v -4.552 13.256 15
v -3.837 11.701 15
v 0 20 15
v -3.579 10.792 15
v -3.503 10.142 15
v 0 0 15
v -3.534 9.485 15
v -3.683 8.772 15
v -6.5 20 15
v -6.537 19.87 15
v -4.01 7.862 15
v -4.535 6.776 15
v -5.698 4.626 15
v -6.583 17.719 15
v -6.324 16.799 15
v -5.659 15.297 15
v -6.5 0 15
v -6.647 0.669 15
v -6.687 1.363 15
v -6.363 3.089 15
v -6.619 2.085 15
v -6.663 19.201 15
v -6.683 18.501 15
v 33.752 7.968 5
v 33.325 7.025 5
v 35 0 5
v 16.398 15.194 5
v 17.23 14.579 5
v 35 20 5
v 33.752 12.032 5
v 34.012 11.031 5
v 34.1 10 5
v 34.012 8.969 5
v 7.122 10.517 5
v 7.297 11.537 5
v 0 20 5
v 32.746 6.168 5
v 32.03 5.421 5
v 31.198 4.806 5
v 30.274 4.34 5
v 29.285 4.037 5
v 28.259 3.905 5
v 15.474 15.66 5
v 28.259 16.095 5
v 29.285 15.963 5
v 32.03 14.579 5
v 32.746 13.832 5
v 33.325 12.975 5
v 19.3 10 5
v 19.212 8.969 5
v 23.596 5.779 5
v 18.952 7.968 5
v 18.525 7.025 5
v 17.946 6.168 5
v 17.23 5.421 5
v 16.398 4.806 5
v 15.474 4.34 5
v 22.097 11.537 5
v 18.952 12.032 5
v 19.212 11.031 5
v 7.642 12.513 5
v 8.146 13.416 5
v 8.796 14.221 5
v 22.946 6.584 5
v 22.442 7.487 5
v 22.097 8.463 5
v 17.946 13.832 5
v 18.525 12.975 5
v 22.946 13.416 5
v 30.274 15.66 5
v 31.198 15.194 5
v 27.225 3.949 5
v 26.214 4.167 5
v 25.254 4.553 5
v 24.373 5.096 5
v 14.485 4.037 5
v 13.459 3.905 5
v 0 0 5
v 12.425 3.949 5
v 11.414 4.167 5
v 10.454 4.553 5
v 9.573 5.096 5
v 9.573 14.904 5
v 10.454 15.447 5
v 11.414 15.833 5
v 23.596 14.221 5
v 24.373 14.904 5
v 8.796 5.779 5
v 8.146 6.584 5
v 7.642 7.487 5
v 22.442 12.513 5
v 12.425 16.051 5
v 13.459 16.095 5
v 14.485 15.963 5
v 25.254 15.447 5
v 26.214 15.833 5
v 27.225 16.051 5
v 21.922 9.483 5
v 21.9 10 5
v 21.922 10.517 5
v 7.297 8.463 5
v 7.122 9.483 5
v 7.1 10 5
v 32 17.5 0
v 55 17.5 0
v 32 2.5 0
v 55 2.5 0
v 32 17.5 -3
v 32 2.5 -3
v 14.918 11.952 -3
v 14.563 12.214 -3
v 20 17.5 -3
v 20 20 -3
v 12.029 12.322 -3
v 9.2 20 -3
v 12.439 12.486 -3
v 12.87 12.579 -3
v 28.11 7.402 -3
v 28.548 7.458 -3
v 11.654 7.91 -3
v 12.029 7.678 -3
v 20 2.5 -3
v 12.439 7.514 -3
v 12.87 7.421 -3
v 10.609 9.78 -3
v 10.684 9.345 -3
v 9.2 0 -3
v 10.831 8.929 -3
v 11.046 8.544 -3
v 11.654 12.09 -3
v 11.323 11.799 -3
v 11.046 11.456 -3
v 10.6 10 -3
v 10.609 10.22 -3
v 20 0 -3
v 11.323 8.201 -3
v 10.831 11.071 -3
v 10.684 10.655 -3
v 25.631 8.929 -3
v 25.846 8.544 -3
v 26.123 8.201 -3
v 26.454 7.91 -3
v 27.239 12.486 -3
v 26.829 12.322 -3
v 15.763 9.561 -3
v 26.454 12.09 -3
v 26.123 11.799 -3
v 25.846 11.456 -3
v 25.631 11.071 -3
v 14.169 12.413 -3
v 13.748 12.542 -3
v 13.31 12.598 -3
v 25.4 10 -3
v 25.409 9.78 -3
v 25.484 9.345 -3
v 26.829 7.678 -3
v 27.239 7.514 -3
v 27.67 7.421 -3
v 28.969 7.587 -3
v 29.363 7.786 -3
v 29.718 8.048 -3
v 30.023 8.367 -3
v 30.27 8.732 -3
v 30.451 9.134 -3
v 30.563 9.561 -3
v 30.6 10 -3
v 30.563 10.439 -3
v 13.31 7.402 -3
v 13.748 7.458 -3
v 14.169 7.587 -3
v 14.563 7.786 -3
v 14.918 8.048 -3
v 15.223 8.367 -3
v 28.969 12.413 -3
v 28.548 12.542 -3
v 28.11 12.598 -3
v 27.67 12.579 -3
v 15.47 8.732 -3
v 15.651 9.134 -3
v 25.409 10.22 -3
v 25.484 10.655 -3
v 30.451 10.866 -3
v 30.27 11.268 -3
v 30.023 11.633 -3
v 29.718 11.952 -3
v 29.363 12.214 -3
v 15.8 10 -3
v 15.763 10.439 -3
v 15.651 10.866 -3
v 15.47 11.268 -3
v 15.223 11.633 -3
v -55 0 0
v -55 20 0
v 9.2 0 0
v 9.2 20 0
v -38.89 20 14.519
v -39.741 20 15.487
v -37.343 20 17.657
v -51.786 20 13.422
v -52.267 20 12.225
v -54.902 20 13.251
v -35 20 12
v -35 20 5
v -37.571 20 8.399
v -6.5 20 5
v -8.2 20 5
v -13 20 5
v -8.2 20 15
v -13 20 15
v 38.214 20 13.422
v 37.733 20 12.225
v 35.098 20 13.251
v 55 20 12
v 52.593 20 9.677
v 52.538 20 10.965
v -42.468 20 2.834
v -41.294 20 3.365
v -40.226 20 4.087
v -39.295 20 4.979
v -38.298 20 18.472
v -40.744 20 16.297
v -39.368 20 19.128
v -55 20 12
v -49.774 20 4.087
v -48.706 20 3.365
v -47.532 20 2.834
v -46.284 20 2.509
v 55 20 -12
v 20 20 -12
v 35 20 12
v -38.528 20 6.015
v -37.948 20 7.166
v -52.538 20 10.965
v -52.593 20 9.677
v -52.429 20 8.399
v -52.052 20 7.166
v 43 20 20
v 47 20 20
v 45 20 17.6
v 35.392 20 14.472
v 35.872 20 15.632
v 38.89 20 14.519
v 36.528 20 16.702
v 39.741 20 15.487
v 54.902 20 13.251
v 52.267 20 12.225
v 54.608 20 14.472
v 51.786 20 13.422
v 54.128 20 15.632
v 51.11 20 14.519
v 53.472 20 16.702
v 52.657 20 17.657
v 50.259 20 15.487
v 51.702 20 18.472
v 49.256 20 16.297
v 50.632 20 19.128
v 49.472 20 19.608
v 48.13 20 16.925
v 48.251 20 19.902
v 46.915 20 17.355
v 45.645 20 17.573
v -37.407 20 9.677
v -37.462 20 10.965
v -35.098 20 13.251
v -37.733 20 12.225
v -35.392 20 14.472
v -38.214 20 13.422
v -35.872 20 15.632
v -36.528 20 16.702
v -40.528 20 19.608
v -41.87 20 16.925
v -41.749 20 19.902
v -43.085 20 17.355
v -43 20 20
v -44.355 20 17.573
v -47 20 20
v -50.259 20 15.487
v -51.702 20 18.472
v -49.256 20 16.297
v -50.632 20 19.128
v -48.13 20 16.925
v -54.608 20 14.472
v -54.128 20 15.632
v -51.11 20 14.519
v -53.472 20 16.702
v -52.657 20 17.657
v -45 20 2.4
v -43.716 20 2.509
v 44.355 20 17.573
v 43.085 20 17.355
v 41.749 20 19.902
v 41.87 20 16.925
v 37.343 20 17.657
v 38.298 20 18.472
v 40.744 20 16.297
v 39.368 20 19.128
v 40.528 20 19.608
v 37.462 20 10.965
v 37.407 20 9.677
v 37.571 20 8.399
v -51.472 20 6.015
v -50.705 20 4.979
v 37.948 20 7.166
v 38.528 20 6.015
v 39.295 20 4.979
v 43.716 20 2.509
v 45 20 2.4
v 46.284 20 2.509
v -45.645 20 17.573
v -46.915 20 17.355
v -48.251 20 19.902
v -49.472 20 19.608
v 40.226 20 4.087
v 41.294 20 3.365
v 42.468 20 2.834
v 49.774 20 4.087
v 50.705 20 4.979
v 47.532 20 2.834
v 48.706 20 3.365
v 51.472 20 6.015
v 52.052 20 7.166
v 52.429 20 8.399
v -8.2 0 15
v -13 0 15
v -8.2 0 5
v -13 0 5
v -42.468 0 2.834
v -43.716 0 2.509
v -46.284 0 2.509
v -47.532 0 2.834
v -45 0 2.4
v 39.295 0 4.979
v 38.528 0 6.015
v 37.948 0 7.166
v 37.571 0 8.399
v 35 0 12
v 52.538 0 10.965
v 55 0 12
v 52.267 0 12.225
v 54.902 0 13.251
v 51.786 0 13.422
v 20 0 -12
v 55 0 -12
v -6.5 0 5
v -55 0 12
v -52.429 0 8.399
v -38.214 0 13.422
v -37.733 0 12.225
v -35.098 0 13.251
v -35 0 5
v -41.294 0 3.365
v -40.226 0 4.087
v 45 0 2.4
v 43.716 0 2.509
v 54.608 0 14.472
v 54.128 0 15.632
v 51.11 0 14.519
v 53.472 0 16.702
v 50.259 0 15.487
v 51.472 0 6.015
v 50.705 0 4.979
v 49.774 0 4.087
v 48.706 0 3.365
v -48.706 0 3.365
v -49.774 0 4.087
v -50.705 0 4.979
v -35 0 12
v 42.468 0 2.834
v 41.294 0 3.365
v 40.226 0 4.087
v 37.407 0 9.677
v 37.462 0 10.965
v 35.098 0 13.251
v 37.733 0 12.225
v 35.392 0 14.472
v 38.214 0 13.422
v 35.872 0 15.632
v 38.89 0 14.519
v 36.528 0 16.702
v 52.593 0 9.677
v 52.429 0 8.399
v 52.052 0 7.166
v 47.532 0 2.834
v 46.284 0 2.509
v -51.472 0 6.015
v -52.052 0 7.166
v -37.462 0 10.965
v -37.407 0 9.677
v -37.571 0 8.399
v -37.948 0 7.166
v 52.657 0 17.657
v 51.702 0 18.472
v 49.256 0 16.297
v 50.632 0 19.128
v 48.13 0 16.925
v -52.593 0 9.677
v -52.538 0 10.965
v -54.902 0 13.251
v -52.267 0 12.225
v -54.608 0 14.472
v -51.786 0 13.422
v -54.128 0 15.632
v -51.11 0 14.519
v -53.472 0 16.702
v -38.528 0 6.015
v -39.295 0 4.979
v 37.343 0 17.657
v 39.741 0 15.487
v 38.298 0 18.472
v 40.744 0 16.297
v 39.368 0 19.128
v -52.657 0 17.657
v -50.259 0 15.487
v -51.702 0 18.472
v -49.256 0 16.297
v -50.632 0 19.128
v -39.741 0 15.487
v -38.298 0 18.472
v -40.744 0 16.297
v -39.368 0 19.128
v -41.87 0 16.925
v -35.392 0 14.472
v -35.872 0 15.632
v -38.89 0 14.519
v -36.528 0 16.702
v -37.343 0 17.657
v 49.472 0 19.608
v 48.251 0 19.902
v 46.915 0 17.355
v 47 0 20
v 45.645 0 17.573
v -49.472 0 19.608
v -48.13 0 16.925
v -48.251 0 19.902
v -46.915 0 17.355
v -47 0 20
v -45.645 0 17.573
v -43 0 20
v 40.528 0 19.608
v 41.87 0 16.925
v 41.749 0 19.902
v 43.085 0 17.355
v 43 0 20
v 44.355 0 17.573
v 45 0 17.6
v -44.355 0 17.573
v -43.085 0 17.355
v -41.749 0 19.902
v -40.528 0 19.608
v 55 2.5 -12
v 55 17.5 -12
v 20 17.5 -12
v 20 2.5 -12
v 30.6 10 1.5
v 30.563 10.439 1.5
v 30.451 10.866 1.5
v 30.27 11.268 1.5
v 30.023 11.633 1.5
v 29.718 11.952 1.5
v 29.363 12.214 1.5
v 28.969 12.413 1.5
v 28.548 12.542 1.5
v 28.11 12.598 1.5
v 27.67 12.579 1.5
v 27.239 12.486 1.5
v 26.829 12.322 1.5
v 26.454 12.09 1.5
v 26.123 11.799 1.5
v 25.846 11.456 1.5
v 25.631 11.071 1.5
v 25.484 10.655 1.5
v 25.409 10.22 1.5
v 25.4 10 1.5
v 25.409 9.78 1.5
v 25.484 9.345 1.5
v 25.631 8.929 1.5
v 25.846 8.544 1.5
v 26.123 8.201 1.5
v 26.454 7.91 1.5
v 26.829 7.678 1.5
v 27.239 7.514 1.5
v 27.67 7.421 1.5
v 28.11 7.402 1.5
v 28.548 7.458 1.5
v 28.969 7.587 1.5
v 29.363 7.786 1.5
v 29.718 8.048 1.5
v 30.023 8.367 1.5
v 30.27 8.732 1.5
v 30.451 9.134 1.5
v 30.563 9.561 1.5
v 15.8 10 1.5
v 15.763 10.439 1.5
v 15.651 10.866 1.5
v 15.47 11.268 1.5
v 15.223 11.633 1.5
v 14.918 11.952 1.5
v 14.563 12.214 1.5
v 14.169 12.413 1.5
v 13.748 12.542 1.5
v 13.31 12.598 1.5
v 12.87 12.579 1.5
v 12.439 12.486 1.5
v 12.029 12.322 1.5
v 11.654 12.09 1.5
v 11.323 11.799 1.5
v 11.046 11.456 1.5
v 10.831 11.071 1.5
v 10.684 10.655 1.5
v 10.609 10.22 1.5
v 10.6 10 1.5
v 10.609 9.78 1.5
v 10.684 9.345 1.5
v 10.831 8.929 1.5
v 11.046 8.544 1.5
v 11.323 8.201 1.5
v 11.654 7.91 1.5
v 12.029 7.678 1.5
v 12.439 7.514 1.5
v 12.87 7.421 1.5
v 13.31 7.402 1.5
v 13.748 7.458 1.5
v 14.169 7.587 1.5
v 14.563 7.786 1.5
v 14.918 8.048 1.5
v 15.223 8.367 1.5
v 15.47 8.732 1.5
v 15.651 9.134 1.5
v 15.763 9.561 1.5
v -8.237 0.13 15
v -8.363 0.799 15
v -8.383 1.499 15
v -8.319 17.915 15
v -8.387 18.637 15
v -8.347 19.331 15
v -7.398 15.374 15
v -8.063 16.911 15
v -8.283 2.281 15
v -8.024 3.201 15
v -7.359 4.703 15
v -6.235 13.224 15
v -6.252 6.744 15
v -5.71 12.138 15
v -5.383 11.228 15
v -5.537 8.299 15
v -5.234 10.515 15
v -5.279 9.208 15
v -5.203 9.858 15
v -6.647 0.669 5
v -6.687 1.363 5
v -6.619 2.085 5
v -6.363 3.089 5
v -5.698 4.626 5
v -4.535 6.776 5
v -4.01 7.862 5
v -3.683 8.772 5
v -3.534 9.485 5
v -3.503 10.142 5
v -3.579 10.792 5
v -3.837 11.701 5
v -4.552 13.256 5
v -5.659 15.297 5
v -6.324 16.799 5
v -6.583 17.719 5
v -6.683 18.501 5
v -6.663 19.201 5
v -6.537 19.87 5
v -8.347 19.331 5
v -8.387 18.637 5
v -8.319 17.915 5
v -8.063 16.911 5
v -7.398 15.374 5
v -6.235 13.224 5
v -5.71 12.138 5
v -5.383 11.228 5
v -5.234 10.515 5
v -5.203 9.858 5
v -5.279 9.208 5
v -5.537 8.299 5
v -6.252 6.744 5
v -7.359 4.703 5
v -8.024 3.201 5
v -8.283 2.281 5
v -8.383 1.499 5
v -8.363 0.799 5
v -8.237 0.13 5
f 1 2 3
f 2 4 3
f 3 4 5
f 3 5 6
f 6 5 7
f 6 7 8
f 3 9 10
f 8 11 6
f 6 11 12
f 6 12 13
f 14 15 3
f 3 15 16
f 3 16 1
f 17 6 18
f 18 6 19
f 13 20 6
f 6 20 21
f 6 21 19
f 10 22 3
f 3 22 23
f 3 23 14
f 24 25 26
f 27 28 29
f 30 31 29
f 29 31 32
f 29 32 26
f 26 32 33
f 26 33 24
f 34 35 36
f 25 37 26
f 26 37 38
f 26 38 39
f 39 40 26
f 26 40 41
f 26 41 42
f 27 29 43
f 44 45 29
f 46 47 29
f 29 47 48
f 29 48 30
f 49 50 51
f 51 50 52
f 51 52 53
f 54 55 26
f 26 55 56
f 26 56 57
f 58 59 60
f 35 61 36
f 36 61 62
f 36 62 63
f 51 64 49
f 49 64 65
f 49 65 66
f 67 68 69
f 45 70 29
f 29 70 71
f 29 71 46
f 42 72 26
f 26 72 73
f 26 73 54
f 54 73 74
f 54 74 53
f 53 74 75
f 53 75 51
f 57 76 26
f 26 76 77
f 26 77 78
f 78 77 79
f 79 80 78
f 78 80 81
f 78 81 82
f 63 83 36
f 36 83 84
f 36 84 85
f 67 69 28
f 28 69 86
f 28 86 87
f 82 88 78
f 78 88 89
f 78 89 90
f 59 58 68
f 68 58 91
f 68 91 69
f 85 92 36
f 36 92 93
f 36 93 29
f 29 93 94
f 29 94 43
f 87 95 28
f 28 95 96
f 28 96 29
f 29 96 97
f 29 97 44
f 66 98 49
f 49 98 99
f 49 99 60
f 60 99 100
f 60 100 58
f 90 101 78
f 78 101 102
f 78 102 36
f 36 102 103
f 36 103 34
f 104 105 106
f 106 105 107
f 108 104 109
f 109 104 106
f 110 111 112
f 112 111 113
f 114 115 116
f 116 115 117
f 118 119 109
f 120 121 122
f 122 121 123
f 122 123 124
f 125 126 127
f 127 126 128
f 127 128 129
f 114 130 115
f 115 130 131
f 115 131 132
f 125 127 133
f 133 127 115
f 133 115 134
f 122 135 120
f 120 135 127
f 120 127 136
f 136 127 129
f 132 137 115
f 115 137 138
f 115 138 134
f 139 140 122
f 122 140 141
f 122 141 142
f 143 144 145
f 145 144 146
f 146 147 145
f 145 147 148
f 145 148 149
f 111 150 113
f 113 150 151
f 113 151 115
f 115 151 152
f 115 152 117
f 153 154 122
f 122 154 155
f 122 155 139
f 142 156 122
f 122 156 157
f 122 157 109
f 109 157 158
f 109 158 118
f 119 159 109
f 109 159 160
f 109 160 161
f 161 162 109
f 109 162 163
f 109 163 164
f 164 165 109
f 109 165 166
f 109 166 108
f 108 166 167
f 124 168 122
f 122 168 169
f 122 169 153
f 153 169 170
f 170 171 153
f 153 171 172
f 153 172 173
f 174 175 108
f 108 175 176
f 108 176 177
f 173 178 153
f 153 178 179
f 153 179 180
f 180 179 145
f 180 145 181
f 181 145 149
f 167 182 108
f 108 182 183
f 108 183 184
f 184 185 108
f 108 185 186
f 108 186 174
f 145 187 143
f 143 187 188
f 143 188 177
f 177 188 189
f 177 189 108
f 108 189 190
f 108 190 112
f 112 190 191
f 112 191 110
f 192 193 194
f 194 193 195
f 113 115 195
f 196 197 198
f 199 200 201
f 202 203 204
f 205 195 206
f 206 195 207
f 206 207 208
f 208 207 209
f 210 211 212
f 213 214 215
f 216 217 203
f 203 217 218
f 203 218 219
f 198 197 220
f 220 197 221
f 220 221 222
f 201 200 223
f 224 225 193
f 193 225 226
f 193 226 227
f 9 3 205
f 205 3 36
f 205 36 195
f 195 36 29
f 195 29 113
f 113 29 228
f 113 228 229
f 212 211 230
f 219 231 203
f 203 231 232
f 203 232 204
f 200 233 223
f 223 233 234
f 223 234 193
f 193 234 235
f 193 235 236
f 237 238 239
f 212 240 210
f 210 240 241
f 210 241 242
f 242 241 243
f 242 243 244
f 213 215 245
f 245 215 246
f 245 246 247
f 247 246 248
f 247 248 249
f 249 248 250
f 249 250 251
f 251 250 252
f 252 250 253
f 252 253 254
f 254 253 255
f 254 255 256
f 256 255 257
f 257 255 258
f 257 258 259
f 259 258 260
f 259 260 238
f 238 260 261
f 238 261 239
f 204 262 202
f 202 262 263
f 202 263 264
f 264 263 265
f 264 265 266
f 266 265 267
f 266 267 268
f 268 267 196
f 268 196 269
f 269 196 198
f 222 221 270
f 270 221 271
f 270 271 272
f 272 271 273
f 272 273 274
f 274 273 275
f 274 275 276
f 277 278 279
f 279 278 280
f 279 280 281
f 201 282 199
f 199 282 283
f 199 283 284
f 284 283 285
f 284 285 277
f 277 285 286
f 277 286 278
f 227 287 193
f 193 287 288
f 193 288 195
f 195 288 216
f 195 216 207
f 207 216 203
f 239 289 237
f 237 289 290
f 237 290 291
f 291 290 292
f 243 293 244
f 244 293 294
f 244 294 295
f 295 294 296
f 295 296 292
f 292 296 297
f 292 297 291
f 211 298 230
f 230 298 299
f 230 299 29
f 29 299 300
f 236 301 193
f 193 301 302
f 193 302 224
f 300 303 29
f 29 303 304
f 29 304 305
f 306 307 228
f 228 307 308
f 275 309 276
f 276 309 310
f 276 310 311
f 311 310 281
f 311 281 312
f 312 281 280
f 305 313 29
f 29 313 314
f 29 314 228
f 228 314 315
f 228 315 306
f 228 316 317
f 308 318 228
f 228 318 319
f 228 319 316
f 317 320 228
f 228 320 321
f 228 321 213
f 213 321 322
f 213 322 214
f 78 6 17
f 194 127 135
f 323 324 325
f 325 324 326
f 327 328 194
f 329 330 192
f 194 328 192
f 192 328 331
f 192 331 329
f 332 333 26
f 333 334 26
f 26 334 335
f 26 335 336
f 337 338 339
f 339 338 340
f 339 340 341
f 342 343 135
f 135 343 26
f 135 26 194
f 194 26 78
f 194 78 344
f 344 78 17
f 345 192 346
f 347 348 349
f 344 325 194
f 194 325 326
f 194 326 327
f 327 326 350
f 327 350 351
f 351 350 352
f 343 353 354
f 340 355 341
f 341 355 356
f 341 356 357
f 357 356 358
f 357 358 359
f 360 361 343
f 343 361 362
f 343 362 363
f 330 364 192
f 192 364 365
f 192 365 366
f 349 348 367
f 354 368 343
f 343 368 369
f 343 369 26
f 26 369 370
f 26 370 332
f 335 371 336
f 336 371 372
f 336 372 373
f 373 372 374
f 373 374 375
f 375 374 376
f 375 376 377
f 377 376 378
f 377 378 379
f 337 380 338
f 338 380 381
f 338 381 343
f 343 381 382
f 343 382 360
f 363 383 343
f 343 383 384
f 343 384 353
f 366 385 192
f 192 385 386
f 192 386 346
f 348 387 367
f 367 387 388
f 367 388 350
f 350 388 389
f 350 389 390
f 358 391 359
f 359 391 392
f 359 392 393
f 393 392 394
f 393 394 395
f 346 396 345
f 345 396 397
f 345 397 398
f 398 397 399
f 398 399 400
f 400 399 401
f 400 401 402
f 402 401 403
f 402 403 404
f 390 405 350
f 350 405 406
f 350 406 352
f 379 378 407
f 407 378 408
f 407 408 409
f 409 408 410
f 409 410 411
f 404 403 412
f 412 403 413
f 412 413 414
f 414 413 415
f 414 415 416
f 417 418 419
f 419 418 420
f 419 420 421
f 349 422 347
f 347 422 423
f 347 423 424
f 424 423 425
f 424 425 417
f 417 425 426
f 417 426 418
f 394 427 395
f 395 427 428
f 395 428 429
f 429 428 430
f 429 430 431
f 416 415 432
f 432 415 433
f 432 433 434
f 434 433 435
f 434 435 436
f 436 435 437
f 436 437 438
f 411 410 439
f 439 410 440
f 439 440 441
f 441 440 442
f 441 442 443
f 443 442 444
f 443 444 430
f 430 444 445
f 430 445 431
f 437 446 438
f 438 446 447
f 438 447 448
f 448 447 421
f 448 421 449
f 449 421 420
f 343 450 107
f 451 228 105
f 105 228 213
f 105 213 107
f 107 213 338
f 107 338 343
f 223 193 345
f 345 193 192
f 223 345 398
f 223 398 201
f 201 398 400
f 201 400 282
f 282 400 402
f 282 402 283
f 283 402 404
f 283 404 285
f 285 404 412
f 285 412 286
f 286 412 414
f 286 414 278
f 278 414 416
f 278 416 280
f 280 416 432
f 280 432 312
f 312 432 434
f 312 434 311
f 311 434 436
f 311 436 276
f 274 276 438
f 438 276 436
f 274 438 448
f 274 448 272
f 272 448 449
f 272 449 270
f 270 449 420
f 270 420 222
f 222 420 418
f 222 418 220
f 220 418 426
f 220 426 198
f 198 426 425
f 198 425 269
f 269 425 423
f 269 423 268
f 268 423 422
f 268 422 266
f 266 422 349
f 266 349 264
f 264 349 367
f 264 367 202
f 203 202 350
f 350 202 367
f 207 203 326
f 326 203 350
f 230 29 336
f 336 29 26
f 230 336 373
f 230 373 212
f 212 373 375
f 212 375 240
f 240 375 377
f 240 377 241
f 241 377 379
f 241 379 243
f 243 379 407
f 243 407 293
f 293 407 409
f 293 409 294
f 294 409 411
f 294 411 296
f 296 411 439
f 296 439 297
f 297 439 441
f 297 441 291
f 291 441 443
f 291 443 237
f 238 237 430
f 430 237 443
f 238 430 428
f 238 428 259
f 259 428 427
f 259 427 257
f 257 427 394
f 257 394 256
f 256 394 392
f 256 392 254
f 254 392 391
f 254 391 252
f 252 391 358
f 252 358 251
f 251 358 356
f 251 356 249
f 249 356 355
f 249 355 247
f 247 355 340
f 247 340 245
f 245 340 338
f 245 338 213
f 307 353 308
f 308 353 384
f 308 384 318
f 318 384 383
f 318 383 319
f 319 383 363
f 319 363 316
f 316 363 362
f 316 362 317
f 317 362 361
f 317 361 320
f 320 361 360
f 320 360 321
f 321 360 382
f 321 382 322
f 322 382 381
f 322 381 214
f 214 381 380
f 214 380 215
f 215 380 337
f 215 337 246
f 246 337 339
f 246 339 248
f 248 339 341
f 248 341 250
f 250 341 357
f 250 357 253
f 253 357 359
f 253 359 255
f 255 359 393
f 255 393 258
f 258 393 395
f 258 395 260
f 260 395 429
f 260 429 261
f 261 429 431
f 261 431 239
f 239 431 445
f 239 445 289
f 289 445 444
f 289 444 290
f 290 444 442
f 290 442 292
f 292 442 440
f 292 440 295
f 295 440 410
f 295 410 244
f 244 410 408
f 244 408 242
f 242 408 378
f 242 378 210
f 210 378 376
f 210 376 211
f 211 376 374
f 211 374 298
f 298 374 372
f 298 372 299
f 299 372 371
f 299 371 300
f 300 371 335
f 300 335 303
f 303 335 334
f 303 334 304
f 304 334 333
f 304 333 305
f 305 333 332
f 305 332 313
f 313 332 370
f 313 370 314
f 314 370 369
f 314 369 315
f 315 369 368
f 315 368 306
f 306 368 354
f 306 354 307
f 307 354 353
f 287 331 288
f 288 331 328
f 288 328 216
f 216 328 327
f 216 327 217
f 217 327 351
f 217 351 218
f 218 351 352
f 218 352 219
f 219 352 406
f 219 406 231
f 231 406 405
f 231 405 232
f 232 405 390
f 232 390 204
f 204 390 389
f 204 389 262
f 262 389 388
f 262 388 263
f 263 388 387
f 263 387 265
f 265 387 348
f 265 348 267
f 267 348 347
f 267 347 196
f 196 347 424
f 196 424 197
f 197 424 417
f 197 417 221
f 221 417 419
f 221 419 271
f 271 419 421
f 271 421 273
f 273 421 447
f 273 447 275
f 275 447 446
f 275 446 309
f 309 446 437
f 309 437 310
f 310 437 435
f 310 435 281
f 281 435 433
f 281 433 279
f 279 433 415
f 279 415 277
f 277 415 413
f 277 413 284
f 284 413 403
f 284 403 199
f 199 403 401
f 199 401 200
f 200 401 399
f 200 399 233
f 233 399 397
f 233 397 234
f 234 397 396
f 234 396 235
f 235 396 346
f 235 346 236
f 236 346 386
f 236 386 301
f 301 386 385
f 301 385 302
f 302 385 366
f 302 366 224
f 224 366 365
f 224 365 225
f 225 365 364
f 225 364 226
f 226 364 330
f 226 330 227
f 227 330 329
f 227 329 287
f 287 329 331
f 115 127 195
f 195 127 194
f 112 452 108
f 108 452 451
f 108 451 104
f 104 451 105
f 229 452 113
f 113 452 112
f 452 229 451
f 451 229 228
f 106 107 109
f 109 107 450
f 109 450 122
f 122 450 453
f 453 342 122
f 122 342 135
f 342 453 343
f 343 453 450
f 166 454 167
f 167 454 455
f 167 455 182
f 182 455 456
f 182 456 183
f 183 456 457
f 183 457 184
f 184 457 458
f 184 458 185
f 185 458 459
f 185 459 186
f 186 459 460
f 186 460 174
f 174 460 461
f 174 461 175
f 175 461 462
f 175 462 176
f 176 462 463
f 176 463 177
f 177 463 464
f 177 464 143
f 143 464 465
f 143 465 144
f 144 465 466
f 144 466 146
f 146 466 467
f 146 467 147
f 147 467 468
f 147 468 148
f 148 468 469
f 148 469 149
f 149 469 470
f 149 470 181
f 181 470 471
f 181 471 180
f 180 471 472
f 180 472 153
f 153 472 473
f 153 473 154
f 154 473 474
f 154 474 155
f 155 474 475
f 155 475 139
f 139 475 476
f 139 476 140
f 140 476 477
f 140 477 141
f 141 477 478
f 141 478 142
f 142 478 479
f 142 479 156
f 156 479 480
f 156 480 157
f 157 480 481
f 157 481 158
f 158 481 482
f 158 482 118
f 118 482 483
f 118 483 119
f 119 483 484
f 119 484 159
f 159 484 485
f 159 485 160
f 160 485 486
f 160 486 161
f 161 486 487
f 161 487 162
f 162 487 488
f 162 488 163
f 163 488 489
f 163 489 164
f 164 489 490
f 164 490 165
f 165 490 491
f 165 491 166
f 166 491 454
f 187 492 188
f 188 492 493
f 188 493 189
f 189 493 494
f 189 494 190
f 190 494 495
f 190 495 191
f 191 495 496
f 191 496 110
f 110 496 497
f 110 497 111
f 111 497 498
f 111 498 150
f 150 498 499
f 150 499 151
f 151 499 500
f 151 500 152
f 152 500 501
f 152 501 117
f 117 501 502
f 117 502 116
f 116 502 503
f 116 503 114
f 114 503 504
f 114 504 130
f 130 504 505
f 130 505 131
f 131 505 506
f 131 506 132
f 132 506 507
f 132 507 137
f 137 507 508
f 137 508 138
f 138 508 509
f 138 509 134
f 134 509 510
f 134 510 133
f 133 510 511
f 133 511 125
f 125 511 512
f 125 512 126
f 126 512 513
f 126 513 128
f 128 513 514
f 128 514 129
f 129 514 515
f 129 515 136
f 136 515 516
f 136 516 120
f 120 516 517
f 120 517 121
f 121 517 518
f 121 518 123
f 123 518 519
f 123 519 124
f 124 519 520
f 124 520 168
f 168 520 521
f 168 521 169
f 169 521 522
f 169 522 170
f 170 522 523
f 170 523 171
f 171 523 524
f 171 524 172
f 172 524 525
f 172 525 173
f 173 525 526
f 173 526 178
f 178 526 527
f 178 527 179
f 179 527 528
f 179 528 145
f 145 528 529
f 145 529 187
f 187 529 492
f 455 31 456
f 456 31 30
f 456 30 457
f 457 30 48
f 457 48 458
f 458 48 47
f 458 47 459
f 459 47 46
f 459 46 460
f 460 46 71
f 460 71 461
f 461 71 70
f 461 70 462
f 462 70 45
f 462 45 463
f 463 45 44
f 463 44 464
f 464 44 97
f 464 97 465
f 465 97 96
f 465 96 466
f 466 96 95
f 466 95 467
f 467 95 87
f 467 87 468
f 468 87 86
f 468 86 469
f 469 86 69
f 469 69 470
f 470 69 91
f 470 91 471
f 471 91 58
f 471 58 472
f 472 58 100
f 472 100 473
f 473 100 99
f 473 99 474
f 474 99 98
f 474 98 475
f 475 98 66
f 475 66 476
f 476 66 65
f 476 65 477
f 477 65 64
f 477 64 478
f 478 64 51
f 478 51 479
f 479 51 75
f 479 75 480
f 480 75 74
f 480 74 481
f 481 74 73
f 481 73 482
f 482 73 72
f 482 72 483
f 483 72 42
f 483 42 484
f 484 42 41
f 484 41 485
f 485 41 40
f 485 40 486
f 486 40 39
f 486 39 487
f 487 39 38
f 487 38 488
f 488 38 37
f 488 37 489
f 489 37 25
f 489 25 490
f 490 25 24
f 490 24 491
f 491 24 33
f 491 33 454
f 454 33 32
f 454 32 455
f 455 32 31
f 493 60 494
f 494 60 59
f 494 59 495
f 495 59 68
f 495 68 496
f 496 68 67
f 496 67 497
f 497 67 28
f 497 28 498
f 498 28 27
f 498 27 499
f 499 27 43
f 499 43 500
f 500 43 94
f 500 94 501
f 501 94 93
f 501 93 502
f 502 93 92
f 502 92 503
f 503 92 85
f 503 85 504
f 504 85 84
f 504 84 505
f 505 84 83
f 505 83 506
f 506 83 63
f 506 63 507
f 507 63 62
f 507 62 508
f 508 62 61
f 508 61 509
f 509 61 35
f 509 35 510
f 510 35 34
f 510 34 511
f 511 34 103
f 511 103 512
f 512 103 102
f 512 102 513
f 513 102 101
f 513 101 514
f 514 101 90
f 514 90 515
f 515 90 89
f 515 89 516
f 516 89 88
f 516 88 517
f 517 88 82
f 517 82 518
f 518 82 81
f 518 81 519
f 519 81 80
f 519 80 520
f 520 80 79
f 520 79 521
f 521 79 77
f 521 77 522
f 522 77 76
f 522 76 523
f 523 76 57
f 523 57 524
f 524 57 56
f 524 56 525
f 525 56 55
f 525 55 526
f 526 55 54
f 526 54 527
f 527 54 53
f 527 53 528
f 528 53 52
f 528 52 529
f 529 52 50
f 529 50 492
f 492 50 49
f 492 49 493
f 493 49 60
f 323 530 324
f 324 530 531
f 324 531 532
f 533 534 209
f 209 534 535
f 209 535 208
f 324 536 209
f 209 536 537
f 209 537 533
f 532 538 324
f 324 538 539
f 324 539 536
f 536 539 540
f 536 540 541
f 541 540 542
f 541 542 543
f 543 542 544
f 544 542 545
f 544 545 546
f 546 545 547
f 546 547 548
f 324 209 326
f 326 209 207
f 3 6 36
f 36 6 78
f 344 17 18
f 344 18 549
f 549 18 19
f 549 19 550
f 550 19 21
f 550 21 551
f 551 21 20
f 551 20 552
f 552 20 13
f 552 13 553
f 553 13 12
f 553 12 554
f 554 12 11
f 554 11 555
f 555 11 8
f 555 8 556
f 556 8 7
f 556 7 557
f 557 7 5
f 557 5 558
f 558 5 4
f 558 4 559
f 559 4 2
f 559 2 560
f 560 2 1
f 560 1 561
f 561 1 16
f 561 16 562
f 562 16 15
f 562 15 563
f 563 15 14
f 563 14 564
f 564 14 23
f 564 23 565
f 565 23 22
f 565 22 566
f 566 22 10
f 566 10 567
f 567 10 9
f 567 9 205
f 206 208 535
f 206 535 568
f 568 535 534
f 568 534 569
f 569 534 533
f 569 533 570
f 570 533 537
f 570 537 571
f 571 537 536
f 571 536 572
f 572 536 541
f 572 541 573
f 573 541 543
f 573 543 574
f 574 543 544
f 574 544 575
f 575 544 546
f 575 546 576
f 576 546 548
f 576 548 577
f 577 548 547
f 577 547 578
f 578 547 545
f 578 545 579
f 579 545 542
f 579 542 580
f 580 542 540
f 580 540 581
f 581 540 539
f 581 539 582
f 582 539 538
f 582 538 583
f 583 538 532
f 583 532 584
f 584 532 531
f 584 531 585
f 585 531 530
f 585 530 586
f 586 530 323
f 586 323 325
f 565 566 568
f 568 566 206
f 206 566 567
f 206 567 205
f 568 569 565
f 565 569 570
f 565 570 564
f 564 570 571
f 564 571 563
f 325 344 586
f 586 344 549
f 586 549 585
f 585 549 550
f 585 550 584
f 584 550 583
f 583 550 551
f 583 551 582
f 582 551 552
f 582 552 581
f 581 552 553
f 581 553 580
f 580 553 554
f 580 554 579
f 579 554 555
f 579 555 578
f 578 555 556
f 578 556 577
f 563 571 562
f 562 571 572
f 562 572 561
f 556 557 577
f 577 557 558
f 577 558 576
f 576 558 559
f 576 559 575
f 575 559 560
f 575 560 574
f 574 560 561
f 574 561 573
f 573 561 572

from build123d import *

# Parameters (mm, degrees)
ESQUISSE1_R                  = 7.6
BOSS_EXTRU_1_DEPTH           = 20
ESQUISSE8_W                  = 22.8
ESQUISSE8_H                  = 20
BOSS_EXTRU_4_DEPTH           = 3
ESQUISSE2_W                  = 35
ESQUISSE2_H                  = 2.5
BOSS_EXTRU_2_DEPTH           = 12
ESQUISSE3_R                  = 2.6
ENL_V_MAT_EXTRU_1_DEPTH      = 3
ENL_V_MAT_EXTRU_1_DEPTH_BACK = 22
CHANFREIN1_SIZE              = 3.5
ESQUISSE4_W                  = 10
ESQUISSE4_H                  = 20
BOSS_EXTRU_3_DEPTH           = 13
ENL_V_MAT_EXTRU_2_DEPTH      = 10


with BuildPart() as part:
    # Esquisse1 → Boss.-Extru.1 (new body)
    with BuildSketch(Plane(origin=(0, 0, 0), x_dir=(1, 0, 0), z_dir=(0, 1, 0))):
        with BuildLine():
            Line((47, -20), (43, -20))
            ThreePointArc((43, -20), (37.343145751, -17.656854249), (35, -12))
            Line((35, -12), (35, -5))
            Line((35, -5), (-35, -5))
            Line((-35, -5), (-35, -12))
            ThreePointArc((-35, -12), (-37.343145751, -17.656854249), (-43, -20))
            Line((-43, -20), (-47, -20))
            ThreePointArc((-47, -20), (-52.656854249, -17.656854249), (-55, -12))
            Line((-55, -12), (-55, 0))
            Line((-55, 0), (55, 0))
            Line((55, 0), (55, -12))
            ThreePointArc((55, -12), (52.656854249, -17.656854249), (47, -20))
        make_face()
        with Locations((45, -10)):
            Circle(ESQUISSE1_R, mode=Mode.SUBTRACT)
        with Locations((-45, -10)):
            Circle(ESQUISSE1_R, mode=Mode.SUBTRACT)
    extrude(amount=BOSS_EXTRU_1_DEPTH)

    # Esquisse8 → Boss.-Extru.4 (add)
    with BuildSketch(Plane(origin=(0, 0, 0), x_dir=(-1, 0, 0), z_dir=(0, 0, -1))):
        with Locations((-20.6, 10)):
            Rectangle(ESQUISSE8_W, ESQUISSE8_H)
    extrude(amount=BOSS_EXTRU_4_DEPTH)

    # Esquisse2 → Boss.-Extru.2 (add)
    with BuildSketch(Plane(origin=(0, 0, 0), x_dir=(-1, 0, 0), z_dir=(0, 0, -1))):
        with Locations((-37.5, 18.75)):
            Rectangle(ESQUISSE2_W, ESQUISSE2_H)
        with Locations((-37.5, 1.25)):
            Rectangle(ESQUISSE2_W, ESQUISSE2_H)
    extrude(amount=BOSS_EXTRU_2_DEPTH)

    # Esquisse3 → Enlèv. mat.-Extru.1 (cut, two sides)
    with BuildSketch(Plane(origin=(0, 0, 0), x_dir=(-1, 0, 0), z_dir=(0, 0, -1))) as enl_v_mat_extru_1_sk:
        with Locations((-13.2, 10)):
            Circle(ESQUISSE3_R)
        with Locations((-28, 10)):
            Circle(ESQUISSE3_R)
    extrude(amount=ENL_V_MAT_EXTRU_1_DEPTH, mode=Mode.SUBTRACT)
    extrude(enl_v_mat_extru_1_sk.sketch, amount=-ENL_V_MAT_EXTRU_1_DEPTH_BACK, mode=Mode.SUBTRACT)

    # Chanfrein1
    chanfrein1_edges = [part.edges().sort_by_distance(p)[0] for p in [
        (15.8, 10, 5),
        (30.6, 10, 5),
    ]]
    chamfer(chanfrein1_edges, length=CHANFREIN1_SIZE)

    # Esquisse4 → Boss.-Extru.3 (add)
    with BuildSketch(Plane(origin=(0, 0, 0), x_dir=(0, 0, -1), z_dir=(1, 0, 0))):
        with Locations((-10, 10)):
            Rectangle(ESQUISSE4_W, ESQUISSE4_H)
    extrude(amount=-BOSS_EXTRU_3_DEPTH)

    # Esquisse7 → Enlèv. mat.-Extru.2 (cut)
    with BuildSketch(Plane.XY.offset(15)):
        with BuildLine():
            Line((-8.2, 20), (-6.5, 20))
            add(Edge.make_bspline(
                [(-6.5, 20), (-7.602205078, 16.366247775), (0.602205078, 10), (-7.602205078, 3.633752225), (-6.5, 0)],
                knots=[0, 0, 0, 0, 0.5, 1, 1, 1, 1], degree=3))
            Line((-6.5, 0), (-8.2, 0))
            add(Edge.make_bspline(
                [(-8.2, 20), (-9.302205078, 16.366247775), (-1.097794922, 10), (-9.302205078, 3.633752225), (-8.2, 0)],
                knots=[0, 0, 0, 0, 0.5, 1, 1, 1, 1], degree=3))
        make_face()
    extrude(amount=-ENL_V_MAT_EXTRU_2_DEPTH, mode=Mode.SUBTRACT)


solid = part.part
